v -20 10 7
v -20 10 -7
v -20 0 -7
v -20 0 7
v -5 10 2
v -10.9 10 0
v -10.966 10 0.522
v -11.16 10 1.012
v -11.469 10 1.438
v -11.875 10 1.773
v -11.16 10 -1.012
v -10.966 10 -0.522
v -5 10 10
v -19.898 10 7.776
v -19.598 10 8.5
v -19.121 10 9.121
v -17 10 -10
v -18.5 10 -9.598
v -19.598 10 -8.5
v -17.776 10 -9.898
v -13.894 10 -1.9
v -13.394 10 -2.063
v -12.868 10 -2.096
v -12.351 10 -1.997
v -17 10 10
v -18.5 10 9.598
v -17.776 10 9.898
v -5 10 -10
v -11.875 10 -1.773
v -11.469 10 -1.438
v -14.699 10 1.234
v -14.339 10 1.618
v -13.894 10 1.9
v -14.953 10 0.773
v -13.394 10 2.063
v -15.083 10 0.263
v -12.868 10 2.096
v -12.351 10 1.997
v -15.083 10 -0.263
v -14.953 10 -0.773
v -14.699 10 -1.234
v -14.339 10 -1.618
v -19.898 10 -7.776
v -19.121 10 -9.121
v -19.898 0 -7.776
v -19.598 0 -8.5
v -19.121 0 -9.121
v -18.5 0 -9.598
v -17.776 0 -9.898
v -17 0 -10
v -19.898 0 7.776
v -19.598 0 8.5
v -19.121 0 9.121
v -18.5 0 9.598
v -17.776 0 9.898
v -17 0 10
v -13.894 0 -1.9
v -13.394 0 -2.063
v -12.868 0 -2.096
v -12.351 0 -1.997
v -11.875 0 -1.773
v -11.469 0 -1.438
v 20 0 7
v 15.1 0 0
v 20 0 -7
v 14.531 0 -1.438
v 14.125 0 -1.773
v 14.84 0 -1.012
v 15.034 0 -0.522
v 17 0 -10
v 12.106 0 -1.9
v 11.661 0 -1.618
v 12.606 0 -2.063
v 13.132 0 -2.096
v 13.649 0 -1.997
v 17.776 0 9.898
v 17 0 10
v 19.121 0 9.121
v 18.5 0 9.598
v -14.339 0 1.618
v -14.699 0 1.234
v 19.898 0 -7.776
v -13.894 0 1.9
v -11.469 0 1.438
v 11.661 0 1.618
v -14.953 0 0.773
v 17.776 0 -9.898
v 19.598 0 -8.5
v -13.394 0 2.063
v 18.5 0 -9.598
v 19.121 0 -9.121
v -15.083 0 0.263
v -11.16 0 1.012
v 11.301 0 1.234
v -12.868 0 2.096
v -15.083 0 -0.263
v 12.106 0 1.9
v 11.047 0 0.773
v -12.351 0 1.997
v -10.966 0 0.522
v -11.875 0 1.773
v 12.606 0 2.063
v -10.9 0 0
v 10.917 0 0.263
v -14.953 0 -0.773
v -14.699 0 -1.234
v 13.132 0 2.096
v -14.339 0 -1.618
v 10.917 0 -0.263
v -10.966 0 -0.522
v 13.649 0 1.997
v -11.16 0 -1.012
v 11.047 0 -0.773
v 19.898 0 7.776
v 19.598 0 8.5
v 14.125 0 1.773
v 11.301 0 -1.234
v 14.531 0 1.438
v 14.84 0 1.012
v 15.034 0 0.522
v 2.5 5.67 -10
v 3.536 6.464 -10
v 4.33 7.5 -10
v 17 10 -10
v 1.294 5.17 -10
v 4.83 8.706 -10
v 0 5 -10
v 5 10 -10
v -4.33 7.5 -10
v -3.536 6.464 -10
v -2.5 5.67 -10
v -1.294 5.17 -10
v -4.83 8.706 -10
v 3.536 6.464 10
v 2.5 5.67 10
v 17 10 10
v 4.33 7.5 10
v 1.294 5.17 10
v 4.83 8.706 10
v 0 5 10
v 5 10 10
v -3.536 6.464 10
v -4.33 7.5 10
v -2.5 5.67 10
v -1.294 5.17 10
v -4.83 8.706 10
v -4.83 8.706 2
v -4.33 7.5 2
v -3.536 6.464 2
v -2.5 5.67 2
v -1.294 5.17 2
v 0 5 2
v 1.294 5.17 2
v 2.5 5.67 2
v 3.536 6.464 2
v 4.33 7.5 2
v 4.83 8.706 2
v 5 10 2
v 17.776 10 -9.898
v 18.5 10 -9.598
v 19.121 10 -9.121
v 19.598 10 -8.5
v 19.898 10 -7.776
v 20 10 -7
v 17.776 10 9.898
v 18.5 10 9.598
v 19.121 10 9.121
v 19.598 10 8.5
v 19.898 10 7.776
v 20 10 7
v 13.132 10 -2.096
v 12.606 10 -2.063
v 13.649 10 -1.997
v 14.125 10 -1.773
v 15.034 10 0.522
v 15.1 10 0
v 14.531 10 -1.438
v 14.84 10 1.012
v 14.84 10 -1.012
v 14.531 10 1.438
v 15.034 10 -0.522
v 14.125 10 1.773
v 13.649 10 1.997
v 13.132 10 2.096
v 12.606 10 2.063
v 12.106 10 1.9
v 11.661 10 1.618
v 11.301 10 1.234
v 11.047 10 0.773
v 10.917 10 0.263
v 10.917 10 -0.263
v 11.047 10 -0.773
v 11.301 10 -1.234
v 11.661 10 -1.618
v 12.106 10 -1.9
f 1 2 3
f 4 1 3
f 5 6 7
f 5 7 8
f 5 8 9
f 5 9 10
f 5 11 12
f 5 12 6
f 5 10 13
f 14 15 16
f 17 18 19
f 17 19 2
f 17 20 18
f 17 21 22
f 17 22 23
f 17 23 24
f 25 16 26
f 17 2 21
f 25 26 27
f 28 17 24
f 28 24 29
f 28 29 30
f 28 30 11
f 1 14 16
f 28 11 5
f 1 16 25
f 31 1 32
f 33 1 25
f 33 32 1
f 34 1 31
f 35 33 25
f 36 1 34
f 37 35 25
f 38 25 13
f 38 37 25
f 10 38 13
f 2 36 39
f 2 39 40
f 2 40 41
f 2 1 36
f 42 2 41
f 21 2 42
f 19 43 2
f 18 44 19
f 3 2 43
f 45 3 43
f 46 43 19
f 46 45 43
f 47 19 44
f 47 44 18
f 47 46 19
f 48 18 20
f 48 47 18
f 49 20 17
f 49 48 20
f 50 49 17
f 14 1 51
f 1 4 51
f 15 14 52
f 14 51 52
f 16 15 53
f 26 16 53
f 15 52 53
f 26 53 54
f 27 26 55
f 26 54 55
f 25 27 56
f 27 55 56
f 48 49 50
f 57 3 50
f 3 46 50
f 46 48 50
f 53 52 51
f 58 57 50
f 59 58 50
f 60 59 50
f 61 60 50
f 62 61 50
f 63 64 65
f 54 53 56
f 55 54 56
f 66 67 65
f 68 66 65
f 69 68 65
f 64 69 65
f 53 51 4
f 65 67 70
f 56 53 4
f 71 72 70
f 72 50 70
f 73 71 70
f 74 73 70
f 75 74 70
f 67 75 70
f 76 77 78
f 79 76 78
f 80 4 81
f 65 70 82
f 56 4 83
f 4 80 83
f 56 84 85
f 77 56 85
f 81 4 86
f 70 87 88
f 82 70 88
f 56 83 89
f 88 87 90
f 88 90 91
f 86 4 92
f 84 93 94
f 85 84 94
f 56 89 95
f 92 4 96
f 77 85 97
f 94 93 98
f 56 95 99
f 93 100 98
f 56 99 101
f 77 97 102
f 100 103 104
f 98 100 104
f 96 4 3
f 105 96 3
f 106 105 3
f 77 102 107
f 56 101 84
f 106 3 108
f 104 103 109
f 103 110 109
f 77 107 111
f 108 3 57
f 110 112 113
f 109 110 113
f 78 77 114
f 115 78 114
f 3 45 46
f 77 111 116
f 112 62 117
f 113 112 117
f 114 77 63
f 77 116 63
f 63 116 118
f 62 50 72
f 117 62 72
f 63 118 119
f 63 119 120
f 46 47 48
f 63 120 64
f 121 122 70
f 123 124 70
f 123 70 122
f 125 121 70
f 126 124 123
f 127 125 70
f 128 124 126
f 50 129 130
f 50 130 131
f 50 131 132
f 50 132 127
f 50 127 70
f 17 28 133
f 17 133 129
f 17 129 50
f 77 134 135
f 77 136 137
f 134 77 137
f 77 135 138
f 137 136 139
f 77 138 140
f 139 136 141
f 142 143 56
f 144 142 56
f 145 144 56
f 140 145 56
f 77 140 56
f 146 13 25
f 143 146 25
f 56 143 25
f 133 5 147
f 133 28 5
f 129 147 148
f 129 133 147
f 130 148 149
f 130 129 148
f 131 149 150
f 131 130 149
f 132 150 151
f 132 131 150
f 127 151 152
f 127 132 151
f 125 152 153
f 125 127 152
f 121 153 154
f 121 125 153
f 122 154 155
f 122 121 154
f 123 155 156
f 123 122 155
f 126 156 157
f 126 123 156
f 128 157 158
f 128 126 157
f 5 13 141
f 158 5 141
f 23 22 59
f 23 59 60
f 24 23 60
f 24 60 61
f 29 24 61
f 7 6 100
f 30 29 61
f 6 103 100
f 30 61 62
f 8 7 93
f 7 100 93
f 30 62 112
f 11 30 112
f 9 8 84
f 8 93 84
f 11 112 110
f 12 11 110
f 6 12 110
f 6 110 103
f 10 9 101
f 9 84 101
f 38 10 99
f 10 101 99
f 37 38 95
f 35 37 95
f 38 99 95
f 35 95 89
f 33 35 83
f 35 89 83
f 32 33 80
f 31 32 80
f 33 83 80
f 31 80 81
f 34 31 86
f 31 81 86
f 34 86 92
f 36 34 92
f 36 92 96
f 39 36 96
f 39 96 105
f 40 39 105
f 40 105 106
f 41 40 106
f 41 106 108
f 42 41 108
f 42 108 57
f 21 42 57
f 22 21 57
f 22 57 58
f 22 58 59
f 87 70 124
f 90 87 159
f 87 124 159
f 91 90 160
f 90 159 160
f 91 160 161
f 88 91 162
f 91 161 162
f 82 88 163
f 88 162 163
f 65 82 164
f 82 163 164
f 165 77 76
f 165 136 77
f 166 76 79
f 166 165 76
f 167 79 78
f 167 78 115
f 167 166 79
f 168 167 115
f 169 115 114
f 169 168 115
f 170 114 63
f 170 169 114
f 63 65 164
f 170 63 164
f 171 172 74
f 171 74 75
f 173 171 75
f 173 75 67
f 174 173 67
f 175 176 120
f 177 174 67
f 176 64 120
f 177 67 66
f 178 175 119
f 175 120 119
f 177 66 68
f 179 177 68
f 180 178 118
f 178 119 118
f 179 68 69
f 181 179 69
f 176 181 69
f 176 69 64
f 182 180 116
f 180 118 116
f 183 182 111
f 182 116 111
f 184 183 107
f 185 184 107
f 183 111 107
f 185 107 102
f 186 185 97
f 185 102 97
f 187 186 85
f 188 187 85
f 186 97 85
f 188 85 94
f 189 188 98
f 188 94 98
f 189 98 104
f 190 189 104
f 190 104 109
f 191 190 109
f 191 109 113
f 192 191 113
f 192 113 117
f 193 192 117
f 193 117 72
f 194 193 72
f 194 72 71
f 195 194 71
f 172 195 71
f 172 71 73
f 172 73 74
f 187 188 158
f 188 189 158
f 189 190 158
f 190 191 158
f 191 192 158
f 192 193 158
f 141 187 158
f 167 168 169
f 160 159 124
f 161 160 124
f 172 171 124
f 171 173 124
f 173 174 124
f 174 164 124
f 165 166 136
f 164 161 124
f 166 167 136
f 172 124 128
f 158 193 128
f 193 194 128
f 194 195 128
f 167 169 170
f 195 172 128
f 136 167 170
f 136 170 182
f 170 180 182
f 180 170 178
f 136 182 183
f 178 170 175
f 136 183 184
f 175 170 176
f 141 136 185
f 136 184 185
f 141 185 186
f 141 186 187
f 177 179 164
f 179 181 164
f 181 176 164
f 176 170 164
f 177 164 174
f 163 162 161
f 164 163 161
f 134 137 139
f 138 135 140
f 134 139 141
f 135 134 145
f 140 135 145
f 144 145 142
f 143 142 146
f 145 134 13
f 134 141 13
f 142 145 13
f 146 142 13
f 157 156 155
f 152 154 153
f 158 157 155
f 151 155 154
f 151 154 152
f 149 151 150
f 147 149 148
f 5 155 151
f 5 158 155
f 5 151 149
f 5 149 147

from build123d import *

# Parameters (mm, degrees)
PAD_DEPTH    = 10
SKETCH001_R  = 2.1
POCKET_DEPTH = 10
FILLET_R     = 3
PAD001_DEPTH = 8


with BuildPart() as part:
    # Sketch → Pad (new body, symmetric)
    with BuildSketch(Plane.XY):
        with BuildLine():
            Line((-20, 10), (-20, 0))
            Line((-20, 0), (20, 0))
            Line((20, 0), (20, 10))
            Line((20, 10), (5, 10))
            ThreePointArc((-5, 10), (0, 5), (5, 10))
            Line((-20, 10), (-5, 10))
        make_face()
    extrude(amount=PAD_DEPTH, both=True)

    # Sketch001 → Pocket (cut)
    with BuildSketch(Plane.XZ):
        with Locations((-13, 0)):
            Circle(SKETCH001_R)
        with Locations((13, 0)):
            Circle(SKETCH001_R)
    extrude(amount=-POCKET_DEPTH, mode=Mode.SUBTRACT)

    # Fillet
    fillet_edges = [part.edges().sort_by_distance(p)[0] for p in [
        (-20, 5, -10),
        (20, 5, -10),
        (-20, 5, 10),
        (20, 5, 10),
    ]]
    fillet(fillet_edges, radius=FILLET_R)

    # Sketch002 → Pad001 (new body)
    with BuildSketch(Plane.XY.offset(10)):
        with BuildLine():
            ThreePointArc((-5, 10), (0, 5), (5, 10))
            Line((-5, 10), (5, 10))
        make_face()
    extrude(amount=-PAD001_DEPTH)


solid = part.part
